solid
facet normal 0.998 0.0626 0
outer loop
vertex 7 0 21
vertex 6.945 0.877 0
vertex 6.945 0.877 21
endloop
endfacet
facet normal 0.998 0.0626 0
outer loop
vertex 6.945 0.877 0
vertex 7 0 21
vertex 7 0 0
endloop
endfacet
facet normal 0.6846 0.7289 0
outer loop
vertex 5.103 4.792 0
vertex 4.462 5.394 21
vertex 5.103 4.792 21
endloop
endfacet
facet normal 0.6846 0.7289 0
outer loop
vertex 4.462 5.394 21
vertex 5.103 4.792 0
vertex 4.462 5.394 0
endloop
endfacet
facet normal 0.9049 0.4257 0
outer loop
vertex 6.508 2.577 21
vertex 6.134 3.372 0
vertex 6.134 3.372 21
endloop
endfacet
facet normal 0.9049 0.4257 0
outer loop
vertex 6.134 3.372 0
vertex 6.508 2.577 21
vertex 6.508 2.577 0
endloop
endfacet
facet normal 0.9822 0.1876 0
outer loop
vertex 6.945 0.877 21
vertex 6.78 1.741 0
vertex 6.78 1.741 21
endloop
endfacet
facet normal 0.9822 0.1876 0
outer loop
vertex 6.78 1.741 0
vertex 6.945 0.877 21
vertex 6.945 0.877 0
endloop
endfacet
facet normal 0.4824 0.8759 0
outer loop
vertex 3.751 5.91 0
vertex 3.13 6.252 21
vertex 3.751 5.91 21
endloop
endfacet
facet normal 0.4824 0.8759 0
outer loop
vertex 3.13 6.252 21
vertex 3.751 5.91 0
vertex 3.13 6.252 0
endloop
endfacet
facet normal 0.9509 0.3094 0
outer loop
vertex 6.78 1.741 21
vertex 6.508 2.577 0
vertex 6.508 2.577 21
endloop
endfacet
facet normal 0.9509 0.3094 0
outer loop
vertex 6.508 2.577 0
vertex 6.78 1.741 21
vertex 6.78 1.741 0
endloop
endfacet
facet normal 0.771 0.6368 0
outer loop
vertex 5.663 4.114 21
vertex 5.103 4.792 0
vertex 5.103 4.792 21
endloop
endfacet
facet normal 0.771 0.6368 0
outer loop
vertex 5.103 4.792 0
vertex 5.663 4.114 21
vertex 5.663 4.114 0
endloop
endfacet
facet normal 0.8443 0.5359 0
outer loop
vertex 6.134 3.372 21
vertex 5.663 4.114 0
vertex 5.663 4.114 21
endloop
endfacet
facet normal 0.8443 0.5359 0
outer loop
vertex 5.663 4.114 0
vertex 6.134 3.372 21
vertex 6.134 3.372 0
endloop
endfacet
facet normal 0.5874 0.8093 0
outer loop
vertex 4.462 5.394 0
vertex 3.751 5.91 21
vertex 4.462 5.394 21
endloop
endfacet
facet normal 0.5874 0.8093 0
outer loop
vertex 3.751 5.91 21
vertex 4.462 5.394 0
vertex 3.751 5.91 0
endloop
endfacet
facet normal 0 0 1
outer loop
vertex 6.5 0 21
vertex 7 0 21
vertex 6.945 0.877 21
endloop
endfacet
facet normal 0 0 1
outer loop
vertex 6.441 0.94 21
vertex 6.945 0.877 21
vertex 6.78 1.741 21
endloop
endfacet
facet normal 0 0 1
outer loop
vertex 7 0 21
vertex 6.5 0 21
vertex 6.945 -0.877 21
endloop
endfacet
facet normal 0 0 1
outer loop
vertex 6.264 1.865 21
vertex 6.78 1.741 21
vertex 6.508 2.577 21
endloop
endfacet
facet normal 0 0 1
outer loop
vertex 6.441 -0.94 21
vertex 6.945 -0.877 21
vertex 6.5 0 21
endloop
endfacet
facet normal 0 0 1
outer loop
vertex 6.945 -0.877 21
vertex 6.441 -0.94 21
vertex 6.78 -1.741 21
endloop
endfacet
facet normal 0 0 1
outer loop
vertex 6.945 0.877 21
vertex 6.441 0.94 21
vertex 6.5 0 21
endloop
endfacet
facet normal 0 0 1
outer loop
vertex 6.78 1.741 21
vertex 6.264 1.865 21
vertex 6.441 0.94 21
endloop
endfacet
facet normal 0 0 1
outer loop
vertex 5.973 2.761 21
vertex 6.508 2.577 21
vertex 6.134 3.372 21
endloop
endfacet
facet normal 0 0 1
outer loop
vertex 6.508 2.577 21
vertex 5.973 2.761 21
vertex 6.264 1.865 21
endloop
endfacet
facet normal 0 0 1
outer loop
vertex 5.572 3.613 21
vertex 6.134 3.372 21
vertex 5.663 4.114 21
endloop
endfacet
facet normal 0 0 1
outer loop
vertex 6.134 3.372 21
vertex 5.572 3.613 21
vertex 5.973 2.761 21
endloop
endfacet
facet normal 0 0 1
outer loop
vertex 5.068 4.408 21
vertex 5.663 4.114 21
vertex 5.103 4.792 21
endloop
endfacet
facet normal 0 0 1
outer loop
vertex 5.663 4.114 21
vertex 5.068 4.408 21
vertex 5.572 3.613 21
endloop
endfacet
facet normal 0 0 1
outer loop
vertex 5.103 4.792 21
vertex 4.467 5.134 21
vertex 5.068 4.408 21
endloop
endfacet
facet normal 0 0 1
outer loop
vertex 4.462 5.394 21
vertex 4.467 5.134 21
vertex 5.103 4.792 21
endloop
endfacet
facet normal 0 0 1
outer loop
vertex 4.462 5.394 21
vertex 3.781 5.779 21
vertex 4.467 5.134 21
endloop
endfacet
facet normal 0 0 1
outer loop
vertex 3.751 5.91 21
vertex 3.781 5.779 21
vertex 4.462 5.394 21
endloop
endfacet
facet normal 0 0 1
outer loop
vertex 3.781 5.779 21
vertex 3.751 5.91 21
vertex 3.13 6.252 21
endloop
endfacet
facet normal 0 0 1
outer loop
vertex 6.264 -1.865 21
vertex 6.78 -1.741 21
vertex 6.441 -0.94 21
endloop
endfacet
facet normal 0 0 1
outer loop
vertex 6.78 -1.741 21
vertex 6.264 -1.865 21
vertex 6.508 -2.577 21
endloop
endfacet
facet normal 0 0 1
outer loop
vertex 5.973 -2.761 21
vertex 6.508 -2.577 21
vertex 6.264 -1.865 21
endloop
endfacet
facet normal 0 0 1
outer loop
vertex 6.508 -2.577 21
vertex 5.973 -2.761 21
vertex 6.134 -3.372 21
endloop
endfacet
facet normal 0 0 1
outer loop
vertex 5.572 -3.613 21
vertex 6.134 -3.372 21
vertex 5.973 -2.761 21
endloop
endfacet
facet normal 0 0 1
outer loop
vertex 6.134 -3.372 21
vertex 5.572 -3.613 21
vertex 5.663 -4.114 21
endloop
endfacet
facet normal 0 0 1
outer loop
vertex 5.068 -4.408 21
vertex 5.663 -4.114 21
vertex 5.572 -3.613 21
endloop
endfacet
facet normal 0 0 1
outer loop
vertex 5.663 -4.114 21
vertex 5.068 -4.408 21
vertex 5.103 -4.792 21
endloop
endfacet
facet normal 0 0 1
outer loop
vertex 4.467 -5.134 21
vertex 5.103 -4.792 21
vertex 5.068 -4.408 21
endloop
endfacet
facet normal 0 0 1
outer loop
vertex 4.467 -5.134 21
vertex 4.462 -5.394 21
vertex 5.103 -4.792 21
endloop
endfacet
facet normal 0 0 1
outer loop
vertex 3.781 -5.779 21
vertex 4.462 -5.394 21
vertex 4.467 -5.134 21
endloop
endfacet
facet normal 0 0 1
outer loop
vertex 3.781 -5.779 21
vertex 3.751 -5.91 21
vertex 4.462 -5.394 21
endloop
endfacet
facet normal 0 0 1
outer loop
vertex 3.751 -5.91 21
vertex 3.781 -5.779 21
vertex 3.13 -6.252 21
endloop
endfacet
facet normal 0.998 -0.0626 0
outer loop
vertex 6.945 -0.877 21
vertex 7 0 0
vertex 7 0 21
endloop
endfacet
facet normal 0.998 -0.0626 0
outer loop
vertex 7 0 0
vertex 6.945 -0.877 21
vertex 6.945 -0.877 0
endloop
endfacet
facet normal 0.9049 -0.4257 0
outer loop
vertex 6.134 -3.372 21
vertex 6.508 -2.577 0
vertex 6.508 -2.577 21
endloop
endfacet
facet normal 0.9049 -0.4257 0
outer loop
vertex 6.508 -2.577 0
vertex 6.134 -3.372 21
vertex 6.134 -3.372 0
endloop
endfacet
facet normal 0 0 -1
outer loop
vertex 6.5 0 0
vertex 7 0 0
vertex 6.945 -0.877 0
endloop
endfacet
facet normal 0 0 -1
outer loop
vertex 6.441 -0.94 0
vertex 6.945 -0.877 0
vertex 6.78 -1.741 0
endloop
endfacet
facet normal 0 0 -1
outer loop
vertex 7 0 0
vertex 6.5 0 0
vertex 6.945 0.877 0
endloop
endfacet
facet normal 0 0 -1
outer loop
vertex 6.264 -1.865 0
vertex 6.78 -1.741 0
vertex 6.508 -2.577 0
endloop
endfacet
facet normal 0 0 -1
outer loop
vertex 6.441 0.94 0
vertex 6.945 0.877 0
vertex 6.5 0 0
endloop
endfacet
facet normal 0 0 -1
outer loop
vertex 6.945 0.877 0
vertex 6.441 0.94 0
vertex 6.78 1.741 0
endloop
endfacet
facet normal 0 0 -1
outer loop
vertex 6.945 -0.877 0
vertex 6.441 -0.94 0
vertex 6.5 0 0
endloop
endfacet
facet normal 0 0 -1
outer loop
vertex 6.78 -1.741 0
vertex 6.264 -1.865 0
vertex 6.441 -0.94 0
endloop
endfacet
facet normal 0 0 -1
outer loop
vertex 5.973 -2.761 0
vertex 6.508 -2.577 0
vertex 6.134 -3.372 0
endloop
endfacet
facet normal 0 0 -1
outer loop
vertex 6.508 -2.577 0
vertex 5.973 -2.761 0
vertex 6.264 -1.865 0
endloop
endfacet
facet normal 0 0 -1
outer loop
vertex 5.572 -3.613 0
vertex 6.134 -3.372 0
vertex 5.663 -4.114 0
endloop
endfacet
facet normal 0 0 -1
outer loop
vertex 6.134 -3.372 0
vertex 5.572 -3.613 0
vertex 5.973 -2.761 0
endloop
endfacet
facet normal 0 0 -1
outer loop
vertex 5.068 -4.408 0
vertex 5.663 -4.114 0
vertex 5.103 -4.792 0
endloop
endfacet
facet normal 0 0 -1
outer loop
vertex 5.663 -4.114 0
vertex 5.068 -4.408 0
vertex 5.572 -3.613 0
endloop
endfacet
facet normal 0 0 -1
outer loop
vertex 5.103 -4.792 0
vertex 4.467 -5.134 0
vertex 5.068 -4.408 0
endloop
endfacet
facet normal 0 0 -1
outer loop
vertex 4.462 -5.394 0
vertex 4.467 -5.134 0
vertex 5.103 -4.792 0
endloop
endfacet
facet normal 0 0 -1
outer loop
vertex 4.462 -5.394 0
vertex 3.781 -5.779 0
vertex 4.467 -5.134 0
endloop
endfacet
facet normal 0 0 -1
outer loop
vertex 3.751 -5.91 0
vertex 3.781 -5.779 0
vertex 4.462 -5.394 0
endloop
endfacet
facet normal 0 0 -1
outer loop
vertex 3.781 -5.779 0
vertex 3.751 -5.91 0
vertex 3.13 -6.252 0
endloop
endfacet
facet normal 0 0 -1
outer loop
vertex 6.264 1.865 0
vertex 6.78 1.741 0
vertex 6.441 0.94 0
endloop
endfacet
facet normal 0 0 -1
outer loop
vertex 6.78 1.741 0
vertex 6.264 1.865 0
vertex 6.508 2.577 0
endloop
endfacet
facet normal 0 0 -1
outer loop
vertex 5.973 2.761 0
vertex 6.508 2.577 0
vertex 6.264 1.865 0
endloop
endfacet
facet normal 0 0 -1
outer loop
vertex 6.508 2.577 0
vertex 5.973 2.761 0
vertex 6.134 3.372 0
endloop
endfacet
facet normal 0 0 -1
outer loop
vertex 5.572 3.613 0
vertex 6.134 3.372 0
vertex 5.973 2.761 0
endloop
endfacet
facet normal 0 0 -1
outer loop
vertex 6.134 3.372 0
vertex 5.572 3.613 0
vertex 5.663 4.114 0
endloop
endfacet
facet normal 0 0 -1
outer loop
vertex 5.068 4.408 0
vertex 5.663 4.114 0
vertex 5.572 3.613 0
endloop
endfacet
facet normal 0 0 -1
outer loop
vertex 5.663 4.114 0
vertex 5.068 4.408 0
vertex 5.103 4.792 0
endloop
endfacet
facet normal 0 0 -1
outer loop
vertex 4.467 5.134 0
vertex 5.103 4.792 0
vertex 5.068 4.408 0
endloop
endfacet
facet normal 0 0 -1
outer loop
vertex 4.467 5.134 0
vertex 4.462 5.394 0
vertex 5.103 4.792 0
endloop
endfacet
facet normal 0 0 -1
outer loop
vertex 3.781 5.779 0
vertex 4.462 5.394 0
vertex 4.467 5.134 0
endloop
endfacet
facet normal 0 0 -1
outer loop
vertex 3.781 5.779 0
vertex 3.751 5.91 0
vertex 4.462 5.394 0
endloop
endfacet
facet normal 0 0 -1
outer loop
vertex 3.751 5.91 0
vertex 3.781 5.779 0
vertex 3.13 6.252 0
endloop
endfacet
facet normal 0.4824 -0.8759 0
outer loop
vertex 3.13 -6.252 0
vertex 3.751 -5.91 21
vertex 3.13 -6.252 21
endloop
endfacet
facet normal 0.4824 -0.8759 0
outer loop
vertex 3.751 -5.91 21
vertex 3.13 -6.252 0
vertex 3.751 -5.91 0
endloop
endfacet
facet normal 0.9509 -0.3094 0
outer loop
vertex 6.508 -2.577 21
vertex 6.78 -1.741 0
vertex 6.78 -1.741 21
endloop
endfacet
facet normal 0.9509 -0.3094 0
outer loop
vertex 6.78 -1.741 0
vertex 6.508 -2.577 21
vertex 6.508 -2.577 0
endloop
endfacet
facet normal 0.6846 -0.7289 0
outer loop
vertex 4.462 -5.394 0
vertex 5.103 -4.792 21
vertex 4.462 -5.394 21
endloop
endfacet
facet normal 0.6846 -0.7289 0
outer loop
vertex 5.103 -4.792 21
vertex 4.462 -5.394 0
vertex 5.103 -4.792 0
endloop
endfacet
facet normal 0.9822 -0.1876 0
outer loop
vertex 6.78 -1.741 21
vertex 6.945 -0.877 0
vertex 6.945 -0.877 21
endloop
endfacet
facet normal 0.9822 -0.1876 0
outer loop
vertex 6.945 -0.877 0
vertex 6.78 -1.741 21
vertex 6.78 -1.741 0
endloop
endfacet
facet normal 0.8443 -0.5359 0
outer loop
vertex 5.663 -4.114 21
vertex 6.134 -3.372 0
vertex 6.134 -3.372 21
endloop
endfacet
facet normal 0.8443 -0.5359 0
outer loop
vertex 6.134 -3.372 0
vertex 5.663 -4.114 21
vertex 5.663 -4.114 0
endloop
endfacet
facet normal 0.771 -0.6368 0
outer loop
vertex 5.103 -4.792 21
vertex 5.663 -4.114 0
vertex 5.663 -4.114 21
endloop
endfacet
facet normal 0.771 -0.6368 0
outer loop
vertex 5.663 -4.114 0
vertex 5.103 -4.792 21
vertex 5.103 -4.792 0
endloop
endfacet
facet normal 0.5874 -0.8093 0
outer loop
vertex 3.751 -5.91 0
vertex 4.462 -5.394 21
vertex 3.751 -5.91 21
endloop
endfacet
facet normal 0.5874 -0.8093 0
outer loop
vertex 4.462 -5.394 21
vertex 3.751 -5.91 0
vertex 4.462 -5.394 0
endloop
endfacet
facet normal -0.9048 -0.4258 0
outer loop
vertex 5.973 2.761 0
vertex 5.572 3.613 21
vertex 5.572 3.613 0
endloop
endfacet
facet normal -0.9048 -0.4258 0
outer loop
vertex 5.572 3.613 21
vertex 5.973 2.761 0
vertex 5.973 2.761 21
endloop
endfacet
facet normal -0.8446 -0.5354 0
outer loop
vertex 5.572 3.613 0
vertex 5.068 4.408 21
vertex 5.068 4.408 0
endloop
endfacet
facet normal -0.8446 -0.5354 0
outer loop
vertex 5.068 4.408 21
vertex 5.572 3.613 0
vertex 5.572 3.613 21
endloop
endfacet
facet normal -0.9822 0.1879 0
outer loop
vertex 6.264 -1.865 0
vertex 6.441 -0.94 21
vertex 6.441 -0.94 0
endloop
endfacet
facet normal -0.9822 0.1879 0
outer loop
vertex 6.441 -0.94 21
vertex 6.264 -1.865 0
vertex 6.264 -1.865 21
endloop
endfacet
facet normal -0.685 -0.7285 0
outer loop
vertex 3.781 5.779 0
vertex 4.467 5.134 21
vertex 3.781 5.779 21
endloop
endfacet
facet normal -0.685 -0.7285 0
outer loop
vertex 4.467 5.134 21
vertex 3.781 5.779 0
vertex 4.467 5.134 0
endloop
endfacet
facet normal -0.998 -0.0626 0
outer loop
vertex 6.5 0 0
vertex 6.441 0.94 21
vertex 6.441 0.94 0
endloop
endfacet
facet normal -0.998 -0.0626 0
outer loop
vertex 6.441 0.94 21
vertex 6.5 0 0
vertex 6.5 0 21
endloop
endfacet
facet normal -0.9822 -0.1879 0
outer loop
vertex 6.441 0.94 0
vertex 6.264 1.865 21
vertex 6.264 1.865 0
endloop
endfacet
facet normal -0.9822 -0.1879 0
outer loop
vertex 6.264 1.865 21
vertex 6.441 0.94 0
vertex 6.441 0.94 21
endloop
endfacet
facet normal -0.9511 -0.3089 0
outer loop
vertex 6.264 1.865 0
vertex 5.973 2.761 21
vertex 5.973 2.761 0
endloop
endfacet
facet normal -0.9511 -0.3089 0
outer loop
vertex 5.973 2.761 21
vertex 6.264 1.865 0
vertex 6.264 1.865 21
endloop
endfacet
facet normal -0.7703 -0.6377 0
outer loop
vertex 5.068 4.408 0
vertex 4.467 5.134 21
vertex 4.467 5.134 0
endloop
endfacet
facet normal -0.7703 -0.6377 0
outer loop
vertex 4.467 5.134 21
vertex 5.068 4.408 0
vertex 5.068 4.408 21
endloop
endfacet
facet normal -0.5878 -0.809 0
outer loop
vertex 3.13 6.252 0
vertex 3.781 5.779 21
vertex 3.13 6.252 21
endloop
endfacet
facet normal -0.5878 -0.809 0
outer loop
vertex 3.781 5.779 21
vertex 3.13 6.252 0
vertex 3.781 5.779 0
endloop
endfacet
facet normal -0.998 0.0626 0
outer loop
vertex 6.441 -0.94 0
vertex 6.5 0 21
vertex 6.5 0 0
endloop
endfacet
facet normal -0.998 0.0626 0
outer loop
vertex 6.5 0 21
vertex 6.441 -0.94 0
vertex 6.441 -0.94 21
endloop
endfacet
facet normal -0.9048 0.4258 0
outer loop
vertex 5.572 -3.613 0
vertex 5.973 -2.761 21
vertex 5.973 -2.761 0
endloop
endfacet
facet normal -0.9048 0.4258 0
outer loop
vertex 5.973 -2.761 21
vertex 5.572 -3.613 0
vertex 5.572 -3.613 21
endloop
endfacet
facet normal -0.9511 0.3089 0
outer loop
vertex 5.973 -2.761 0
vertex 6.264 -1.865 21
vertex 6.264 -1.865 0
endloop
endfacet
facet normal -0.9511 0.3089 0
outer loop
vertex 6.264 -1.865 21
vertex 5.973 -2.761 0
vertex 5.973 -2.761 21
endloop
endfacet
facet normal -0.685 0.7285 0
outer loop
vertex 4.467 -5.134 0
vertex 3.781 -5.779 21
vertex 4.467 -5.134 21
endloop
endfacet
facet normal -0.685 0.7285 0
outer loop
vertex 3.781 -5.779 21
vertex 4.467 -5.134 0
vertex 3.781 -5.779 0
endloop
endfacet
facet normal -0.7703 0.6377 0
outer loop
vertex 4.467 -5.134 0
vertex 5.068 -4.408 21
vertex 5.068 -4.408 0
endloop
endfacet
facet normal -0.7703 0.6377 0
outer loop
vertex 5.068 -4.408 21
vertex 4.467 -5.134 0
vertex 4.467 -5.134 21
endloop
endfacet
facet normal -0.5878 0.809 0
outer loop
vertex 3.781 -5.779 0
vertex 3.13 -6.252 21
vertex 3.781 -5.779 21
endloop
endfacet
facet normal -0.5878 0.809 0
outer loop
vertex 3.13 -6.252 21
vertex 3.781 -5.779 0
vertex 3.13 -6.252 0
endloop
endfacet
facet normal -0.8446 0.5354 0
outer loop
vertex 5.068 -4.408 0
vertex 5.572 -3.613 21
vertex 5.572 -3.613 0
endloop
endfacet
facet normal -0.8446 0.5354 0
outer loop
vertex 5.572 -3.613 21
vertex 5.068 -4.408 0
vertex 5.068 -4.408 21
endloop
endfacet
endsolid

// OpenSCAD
$fn = 50;


difference() {
	union() {
		cylinder(h = 21, r = 7.0000000000);
		translate(v = [-4.0000000000, 0, 0]) {
			cylinder(h = 21, r = 7.0000000000);
		}
	}
	union() {
		cylinder(h = 21, r = 3.2500000000);
		cylinder(h = 21, r = 1.8000000000);
		cylinder(h = 21, r = 1.8000000000);
		cylinder(h = 21, r = 1.8000000000);
		translate(v = [-8.5000000000, 0, 0]) {
			hull() {
				translate(v = [-3.7500000000, 0.0000000000, 0]) {
					cylinder(h = 21, r = 7.5000000000);
				}
				translate(v = [3.7500000000, 0.0000000000, 0]) {
					cylinder(h = 21, r = 7.5000000000);
				}
				translate(v = [-3.7500000000, -0.0000000000, 0]) {
					cylinder(h = 21, r = 7.5000000000);
				}
				translate(v = [3.7500000000, -0.0000000000, 0]) {
					cylinder(h = 21, r = 7.5000000000);
				}
			}
		}
		translate(v = [-1.0000000000, 0, 0.0000000000]) {
			cylinder(h = 21, r = 7.5000000000);
		}
	}
}
